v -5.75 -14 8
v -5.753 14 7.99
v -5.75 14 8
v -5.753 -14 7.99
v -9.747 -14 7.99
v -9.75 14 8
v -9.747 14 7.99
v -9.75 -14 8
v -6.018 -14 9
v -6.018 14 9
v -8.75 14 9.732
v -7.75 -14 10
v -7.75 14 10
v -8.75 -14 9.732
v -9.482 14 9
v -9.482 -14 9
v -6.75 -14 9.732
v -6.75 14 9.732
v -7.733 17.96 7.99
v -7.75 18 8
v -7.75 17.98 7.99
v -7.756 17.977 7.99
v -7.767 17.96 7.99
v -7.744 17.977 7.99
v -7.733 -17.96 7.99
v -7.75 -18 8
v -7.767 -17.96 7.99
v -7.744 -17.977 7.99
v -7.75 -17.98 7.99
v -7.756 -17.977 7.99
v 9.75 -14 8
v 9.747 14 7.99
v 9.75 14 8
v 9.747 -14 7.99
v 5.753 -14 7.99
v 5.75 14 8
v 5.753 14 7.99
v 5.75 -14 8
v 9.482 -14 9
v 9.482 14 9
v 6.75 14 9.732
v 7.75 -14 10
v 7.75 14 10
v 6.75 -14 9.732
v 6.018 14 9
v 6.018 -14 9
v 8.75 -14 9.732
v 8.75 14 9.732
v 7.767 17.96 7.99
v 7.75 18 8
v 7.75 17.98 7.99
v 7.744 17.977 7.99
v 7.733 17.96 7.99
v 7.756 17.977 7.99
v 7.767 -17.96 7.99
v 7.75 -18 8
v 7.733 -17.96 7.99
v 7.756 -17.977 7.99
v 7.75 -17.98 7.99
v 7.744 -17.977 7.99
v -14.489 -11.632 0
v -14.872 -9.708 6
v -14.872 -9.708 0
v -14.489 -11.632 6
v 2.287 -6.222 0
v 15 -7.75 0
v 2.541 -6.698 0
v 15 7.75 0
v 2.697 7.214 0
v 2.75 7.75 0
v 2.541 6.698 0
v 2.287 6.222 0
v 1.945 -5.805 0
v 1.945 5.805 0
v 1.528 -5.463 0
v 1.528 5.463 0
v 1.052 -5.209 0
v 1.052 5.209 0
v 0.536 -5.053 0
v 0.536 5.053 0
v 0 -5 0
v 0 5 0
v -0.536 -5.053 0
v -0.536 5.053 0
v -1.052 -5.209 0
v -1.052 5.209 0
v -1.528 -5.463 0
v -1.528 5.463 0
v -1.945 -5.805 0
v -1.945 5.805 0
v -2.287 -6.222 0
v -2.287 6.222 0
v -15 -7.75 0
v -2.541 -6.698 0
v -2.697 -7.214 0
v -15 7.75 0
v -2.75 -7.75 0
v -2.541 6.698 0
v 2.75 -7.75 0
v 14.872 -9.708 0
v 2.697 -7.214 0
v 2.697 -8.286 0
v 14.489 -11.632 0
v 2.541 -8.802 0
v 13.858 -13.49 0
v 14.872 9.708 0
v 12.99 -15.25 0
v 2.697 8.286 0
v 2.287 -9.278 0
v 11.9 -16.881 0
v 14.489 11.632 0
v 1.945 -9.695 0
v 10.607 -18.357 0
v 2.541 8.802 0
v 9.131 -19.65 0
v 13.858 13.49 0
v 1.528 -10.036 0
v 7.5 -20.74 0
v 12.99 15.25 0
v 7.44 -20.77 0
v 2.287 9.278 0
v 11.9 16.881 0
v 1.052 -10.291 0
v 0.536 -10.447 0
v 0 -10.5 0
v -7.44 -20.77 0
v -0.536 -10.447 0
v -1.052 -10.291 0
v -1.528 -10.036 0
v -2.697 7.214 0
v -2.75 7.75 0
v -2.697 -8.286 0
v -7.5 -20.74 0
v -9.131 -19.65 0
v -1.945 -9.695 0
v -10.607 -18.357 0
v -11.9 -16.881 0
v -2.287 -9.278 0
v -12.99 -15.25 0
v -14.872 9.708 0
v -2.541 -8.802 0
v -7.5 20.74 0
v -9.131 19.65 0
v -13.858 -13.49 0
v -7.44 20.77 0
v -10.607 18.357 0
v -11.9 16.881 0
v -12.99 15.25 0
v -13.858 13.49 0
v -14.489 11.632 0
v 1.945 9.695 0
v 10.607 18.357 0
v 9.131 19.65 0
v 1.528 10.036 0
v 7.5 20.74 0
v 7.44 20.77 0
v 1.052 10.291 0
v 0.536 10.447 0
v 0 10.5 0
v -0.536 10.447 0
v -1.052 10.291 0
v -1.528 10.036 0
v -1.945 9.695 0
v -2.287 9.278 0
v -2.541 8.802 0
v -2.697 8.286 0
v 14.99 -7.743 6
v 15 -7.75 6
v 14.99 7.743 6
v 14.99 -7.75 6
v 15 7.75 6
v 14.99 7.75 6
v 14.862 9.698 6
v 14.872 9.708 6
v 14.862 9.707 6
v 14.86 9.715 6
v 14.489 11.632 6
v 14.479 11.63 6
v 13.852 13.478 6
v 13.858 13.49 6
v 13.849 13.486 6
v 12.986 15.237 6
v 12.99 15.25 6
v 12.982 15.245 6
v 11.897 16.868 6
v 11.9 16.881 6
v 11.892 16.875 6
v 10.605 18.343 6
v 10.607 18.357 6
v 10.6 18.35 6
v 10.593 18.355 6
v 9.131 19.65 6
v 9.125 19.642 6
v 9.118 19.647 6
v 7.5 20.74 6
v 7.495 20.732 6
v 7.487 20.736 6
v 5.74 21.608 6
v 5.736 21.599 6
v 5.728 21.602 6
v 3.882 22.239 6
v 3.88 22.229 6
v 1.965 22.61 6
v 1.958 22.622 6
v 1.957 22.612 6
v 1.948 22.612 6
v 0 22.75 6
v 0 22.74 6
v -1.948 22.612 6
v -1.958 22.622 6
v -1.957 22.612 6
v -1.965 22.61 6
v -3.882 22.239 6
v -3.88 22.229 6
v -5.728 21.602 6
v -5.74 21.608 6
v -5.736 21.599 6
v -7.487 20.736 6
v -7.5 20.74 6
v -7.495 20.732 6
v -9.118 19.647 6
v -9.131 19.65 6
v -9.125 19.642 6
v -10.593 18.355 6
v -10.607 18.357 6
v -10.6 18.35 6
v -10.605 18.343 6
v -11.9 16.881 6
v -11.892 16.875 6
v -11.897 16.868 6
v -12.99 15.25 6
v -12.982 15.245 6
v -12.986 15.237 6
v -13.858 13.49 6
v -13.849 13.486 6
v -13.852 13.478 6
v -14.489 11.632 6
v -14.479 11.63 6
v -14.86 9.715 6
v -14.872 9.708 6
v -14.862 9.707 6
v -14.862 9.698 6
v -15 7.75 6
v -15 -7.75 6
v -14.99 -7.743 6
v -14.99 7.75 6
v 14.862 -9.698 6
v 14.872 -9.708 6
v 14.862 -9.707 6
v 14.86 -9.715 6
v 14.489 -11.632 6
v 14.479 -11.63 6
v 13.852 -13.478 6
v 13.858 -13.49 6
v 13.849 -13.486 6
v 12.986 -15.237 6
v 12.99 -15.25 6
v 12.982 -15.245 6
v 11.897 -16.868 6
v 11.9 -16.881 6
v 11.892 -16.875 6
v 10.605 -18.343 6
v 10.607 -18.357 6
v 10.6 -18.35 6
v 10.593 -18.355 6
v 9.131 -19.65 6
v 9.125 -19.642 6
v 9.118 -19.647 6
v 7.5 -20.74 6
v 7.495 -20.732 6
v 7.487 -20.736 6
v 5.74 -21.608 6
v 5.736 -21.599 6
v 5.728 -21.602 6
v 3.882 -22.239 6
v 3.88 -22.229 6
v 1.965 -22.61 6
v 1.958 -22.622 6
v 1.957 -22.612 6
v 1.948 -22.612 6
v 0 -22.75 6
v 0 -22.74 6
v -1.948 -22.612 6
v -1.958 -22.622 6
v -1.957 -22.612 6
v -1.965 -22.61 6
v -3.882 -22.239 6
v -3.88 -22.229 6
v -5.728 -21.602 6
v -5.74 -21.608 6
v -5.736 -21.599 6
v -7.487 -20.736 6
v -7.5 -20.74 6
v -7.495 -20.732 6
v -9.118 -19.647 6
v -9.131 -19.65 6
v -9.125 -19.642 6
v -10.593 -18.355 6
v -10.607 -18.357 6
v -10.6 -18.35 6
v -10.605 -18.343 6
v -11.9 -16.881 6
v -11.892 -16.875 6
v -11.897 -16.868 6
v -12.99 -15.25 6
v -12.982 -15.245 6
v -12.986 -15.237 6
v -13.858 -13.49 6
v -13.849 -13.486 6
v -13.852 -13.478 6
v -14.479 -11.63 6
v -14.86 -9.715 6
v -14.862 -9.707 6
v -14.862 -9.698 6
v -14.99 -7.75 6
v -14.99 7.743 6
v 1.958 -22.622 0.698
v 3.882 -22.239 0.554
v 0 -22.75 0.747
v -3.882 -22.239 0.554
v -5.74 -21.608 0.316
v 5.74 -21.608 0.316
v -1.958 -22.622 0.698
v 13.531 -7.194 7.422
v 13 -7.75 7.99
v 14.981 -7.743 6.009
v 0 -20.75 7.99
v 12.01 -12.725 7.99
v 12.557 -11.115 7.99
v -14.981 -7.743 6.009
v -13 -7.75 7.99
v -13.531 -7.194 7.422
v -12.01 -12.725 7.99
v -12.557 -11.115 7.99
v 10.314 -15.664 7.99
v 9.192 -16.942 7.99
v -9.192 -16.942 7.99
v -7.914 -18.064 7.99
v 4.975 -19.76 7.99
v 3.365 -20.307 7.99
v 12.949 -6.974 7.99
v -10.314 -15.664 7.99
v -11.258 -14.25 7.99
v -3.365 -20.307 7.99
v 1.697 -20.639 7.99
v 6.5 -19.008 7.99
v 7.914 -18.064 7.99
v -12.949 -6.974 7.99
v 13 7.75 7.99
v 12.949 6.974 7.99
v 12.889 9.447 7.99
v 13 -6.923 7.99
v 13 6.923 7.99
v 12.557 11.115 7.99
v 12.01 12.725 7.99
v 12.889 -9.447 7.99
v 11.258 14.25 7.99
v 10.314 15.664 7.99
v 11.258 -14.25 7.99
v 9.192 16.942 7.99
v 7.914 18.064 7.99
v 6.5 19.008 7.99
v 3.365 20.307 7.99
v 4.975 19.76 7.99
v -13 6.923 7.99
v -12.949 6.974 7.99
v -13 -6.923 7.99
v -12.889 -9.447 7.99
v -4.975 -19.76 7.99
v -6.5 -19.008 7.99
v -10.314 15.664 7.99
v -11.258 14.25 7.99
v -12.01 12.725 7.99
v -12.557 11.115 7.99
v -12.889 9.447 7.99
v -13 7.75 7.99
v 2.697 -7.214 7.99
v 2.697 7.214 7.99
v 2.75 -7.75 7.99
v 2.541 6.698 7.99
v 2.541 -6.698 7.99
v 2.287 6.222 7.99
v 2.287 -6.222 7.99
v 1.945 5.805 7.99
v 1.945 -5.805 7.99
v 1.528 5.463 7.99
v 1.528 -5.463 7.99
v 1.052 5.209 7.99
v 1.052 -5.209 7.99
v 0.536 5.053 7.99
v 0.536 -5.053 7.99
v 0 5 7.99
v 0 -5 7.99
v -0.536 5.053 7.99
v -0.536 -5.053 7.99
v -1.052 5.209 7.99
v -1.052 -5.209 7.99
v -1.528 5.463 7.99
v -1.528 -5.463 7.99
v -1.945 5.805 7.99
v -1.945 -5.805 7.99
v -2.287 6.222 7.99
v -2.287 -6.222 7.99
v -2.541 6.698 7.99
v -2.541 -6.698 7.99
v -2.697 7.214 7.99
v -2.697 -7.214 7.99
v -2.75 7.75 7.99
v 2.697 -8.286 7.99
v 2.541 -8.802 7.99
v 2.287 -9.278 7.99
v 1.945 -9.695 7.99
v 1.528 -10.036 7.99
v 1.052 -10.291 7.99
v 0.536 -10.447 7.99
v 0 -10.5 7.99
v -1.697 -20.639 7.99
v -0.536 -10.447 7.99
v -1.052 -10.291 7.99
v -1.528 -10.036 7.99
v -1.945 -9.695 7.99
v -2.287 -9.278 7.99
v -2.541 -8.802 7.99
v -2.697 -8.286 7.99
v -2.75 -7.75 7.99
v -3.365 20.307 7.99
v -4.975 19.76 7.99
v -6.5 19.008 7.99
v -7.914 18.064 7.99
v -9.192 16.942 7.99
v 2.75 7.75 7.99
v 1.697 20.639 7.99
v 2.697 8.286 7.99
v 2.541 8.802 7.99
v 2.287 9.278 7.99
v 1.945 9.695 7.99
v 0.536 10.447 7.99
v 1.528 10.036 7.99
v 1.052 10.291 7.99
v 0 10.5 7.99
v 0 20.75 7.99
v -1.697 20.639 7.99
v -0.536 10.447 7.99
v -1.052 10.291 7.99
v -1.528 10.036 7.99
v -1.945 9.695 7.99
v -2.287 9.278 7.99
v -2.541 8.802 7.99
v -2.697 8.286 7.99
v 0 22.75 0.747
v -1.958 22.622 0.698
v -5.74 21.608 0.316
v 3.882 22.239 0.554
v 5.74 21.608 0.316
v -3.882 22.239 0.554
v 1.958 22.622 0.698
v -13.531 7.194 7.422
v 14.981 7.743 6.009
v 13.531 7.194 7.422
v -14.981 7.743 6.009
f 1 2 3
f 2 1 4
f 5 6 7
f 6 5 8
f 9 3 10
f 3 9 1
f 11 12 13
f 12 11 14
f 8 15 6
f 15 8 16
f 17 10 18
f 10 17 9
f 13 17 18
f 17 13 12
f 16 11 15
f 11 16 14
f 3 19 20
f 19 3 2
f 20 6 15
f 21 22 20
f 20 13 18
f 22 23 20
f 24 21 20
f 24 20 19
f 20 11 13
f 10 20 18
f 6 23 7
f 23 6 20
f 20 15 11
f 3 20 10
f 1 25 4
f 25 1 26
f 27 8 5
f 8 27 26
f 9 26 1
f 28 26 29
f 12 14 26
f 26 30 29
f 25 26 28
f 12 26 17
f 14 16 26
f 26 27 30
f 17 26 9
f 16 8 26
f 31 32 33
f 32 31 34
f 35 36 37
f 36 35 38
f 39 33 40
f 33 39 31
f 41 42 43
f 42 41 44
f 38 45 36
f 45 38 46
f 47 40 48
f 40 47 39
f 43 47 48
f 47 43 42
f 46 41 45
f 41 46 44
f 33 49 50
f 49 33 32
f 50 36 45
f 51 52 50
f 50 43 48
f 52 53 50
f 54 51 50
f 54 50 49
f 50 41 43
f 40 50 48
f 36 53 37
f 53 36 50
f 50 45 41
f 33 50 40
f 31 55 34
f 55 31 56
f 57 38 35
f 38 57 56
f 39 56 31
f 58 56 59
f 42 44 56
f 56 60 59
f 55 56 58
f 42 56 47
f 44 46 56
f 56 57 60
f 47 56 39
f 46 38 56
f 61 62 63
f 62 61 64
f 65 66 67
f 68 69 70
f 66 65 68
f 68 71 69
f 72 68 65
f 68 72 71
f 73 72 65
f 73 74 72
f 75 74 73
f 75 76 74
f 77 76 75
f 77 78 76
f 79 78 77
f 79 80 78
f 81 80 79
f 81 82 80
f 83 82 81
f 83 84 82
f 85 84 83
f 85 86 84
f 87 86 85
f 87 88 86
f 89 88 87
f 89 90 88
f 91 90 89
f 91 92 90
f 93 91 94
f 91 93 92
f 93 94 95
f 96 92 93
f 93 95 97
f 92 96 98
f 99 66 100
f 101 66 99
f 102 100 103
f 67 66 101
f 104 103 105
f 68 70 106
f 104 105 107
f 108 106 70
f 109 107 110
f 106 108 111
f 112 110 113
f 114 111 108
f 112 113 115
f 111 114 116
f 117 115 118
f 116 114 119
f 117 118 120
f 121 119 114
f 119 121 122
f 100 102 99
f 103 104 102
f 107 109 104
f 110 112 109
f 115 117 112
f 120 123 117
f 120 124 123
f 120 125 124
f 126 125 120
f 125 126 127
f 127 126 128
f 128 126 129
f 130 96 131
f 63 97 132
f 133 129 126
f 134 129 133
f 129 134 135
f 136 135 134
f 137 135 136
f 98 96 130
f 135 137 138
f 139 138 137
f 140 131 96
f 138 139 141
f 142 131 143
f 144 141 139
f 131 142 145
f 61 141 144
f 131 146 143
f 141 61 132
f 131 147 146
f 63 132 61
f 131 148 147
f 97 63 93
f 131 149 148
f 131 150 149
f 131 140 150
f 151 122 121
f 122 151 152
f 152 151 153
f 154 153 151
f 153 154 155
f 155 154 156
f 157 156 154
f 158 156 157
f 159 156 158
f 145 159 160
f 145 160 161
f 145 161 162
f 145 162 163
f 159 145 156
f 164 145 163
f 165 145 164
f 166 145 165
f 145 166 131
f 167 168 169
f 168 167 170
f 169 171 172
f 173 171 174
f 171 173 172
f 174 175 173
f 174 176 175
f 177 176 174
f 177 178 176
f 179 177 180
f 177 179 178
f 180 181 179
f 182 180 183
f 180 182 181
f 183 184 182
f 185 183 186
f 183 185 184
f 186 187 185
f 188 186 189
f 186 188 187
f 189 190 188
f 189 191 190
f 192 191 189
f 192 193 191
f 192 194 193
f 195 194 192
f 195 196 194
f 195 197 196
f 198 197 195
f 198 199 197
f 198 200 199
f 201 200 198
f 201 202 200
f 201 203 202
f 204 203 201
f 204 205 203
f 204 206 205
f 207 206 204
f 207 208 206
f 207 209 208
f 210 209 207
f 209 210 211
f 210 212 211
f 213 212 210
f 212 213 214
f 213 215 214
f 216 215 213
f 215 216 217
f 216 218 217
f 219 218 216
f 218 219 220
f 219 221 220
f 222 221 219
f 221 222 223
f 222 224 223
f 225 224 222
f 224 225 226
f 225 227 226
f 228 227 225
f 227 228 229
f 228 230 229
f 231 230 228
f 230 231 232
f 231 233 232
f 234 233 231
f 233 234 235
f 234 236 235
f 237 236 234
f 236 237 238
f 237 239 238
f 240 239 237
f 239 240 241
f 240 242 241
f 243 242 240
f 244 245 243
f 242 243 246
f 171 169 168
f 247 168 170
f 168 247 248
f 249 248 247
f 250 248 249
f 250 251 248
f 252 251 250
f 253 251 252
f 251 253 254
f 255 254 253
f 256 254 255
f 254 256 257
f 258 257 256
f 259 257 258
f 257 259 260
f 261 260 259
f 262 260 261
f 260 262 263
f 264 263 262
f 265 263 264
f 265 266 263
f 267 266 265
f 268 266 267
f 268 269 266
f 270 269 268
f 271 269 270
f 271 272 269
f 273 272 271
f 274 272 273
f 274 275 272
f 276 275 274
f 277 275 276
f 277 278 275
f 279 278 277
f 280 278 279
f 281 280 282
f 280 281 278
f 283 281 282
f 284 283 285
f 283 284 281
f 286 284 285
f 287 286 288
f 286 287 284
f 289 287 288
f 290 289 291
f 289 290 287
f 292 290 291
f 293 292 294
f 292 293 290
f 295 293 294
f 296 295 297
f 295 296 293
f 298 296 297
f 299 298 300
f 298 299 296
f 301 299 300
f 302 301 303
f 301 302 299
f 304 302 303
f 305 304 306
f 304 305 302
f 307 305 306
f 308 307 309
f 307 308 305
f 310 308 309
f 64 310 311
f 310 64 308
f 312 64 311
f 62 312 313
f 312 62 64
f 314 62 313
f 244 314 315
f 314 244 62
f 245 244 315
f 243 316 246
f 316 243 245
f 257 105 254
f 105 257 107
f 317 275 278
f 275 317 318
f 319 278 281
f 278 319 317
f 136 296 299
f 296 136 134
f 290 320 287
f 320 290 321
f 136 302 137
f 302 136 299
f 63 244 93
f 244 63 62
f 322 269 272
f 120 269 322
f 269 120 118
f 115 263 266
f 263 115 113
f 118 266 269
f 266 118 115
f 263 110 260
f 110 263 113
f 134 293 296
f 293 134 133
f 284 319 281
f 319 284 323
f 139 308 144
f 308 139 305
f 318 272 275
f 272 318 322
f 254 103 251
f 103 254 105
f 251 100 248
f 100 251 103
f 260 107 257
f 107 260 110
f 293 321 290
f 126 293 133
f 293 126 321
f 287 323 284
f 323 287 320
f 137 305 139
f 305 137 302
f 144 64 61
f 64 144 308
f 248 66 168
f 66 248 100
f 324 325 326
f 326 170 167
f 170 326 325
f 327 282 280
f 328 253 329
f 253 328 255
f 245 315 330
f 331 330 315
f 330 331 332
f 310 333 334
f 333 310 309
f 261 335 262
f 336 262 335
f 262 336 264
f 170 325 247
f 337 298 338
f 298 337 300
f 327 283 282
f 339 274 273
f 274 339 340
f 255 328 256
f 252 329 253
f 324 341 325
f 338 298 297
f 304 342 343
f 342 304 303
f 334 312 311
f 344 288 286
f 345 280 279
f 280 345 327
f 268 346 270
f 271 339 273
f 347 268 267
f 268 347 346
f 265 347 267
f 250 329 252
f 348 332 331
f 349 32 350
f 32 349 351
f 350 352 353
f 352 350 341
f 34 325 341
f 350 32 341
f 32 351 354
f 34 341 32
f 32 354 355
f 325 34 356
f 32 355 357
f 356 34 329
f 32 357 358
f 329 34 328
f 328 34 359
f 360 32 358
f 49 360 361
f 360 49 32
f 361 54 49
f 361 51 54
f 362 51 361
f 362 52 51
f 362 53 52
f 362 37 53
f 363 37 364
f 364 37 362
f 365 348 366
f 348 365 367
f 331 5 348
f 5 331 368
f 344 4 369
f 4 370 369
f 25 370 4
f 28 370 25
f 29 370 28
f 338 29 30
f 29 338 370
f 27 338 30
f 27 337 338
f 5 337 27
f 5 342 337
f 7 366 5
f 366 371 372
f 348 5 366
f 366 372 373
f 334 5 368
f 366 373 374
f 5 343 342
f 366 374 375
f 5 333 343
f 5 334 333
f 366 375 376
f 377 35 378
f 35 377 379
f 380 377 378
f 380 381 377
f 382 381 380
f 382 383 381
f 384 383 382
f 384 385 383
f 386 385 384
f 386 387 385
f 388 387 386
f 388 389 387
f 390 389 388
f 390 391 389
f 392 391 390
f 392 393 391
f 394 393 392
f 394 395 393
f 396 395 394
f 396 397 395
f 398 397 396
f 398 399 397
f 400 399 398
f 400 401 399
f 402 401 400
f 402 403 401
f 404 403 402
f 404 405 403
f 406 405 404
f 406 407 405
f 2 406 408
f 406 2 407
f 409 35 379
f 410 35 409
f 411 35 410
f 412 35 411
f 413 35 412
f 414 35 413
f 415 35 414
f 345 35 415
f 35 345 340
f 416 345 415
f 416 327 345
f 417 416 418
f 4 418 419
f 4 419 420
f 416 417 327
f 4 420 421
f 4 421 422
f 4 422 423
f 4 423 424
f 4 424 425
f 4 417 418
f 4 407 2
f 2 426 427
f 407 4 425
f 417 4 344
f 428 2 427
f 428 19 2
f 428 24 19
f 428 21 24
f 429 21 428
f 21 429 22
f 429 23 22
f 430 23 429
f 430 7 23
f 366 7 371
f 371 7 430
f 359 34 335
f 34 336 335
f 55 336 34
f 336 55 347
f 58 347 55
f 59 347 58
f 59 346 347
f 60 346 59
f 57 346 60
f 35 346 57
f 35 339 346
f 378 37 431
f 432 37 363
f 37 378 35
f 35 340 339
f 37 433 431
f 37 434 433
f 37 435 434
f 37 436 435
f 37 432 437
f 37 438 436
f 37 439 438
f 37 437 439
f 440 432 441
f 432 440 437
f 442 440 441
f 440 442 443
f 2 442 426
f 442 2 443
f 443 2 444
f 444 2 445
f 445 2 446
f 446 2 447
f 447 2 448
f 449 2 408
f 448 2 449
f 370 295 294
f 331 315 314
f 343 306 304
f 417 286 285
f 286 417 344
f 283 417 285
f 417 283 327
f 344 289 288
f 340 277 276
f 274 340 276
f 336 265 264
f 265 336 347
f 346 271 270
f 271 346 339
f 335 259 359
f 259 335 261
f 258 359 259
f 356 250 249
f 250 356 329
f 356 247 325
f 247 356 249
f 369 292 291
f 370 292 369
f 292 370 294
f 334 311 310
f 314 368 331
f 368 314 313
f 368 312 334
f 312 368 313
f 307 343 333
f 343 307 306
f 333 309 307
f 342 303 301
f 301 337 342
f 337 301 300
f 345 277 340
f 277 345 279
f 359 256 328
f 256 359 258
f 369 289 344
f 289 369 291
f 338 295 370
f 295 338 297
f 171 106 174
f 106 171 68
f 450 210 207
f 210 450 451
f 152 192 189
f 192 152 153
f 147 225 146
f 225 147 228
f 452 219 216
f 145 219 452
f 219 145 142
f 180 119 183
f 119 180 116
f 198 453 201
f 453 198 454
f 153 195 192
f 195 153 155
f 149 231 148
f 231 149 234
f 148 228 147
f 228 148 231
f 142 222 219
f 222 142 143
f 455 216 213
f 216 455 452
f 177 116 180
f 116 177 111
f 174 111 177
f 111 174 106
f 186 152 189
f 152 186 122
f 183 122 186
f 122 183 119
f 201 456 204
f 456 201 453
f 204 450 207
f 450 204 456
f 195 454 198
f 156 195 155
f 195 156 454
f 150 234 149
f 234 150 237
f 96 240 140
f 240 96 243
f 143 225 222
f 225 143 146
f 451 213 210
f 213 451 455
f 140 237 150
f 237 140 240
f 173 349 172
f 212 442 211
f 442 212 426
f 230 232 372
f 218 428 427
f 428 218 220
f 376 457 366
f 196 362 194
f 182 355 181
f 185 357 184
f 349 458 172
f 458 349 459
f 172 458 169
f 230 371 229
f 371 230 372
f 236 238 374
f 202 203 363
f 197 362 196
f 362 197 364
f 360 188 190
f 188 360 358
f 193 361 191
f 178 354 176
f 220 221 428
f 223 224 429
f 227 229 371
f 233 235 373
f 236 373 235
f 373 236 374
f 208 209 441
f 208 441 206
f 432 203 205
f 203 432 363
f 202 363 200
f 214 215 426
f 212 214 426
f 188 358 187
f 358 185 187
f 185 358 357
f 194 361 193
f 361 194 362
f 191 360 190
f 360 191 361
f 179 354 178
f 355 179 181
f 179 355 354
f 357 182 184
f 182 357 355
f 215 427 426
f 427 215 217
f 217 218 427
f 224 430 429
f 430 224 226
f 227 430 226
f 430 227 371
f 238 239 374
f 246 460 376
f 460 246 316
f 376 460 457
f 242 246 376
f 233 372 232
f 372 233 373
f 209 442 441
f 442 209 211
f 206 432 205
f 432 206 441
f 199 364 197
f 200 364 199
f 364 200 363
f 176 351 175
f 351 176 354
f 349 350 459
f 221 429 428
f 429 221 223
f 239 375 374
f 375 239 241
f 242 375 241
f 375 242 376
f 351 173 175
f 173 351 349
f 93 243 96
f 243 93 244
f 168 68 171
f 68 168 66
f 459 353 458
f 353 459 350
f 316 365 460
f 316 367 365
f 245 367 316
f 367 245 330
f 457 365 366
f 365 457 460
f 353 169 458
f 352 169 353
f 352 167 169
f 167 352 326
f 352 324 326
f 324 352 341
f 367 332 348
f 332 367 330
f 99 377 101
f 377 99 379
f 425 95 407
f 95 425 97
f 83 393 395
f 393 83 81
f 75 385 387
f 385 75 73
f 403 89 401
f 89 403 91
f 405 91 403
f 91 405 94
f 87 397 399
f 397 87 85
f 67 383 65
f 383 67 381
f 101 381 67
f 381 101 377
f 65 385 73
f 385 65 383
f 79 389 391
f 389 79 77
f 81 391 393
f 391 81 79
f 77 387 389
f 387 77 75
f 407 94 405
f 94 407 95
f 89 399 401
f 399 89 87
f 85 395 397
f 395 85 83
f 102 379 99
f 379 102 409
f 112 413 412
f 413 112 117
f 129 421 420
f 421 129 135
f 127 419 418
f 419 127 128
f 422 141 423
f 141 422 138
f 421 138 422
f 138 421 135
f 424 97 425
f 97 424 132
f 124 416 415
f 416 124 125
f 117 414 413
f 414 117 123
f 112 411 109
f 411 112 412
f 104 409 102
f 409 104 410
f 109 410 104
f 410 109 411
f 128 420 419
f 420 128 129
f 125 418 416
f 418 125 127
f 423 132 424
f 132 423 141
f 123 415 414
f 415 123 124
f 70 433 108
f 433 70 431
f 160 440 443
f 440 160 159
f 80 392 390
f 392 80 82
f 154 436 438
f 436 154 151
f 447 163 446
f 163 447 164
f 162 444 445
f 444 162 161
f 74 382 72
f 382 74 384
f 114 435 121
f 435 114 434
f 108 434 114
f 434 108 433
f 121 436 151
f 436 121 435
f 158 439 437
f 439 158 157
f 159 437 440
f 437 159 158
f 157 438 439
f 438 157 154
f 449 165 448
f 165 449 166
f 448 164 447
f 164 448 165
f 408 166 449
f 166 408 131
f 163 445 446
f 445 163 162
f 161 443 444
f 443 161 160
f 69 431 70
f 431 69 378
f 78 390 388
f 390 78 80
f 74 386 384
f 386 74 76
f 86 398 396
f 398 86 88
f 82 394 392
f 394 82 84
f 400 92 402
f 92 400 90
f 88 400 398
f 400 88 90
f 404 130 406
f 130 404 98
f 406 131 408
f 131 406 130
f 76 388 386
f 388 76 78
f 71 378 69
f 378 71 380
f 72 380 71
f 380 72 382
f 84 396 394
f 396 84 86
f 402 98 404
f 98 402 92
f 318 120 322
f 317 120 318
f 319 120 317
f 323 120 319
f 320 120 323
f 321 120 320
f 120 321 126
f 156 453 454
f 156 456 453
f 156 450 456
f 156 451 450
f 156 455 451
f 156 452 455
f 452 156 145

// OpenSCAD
Ht = 8;
M5=5.5;
M5Head=9;
$fn=48;
m18=Ht-2;           //for M5x18mm socket head screws
m16=Ht-4;           //for M5x16mm socket head screws
module Plate()
{
    union()
    {
        translate([0,-7.75,0])
        cylinder(d=30,h=Ht-2);
        translate([0,-7.75,Ht-2.01])
        cylinder(d1=30,d2=26,h=2);
        translate([0,7.75,0])
        cylinder(d=30,h=Ht-2);
        translate([0,7.75,Ht-2.01])
        cylinder(d1=30,d2=26,h=2);
        translate([-15,-7.75,0])
        cube([30,15.5,Ht-2]);
        translate([0,1.538,Ht-2.01])
        rotate([0,0,22.5])
        cylinder(d1=32.4708,d2=28.1422,h=2,$fn=8);
        translate([0,-1.538,Ht-2.01])
        rotate([0,0,22.5])
        cylinder(d1=32.4708,d2=28.1422,h=2,$fn=8);
//Add Ridges to top to make it more rigid
        translate([-7.75,-14,Ht])
        rotate([-90,0,0])
        Ridge();
        translate([7.75,-14,Ht])
        rotate([-90,0,0])
        Ridge();
    }
}
module Ridge()
{
    union()
    {
        cylinder(d=4,h=28,$fn=12);
        translate([0,0,28])
        cylinder(d1=4,d2=0,h=4,$fn=12);
        translate([0,0,-4])
        cylinder(d1=0,d2=4,h=4,$fn=12);
    }
}
module DrawPlate()
{
    difference()
    {
        Plate();
        translate([0,-7.75,-1])
        cylinder(d=M5,h=Ht+2,$fn=32);
        translate([0,7.75,-1])
        cylinder(d=M5,h=Ht+2,$fn=32);
//Uncomment next 4 lines to useuse M5x16mm instead of M5x18mm socket heads
//        translate([0,-7.75,m18])
//        cylinder(d=M5Head,h=Ht+2,$fn=32);
//        translate([0,7.75,m18])
//        cylinder(d=M5Head,h=Ht+2,$fn=32);
//Cut a notch at bottom so I can pry it off the buildtak easier
        translate([0,-(22.75+8.6),-.01])
        rotate([0,0,45])
        cylinder(d1=30,d2=0,h=4,$fn=4);
        translate([0,(22.75+8.6),-.01])
        rotate([0,0,45])
        cylinder(d1=30,d2=0,h=4,$fn=4);
    }
}

DrawPlate();
//Uncomment next 2 lines to draw two plates
//translate([34,0,0])
//DrawPlate();
